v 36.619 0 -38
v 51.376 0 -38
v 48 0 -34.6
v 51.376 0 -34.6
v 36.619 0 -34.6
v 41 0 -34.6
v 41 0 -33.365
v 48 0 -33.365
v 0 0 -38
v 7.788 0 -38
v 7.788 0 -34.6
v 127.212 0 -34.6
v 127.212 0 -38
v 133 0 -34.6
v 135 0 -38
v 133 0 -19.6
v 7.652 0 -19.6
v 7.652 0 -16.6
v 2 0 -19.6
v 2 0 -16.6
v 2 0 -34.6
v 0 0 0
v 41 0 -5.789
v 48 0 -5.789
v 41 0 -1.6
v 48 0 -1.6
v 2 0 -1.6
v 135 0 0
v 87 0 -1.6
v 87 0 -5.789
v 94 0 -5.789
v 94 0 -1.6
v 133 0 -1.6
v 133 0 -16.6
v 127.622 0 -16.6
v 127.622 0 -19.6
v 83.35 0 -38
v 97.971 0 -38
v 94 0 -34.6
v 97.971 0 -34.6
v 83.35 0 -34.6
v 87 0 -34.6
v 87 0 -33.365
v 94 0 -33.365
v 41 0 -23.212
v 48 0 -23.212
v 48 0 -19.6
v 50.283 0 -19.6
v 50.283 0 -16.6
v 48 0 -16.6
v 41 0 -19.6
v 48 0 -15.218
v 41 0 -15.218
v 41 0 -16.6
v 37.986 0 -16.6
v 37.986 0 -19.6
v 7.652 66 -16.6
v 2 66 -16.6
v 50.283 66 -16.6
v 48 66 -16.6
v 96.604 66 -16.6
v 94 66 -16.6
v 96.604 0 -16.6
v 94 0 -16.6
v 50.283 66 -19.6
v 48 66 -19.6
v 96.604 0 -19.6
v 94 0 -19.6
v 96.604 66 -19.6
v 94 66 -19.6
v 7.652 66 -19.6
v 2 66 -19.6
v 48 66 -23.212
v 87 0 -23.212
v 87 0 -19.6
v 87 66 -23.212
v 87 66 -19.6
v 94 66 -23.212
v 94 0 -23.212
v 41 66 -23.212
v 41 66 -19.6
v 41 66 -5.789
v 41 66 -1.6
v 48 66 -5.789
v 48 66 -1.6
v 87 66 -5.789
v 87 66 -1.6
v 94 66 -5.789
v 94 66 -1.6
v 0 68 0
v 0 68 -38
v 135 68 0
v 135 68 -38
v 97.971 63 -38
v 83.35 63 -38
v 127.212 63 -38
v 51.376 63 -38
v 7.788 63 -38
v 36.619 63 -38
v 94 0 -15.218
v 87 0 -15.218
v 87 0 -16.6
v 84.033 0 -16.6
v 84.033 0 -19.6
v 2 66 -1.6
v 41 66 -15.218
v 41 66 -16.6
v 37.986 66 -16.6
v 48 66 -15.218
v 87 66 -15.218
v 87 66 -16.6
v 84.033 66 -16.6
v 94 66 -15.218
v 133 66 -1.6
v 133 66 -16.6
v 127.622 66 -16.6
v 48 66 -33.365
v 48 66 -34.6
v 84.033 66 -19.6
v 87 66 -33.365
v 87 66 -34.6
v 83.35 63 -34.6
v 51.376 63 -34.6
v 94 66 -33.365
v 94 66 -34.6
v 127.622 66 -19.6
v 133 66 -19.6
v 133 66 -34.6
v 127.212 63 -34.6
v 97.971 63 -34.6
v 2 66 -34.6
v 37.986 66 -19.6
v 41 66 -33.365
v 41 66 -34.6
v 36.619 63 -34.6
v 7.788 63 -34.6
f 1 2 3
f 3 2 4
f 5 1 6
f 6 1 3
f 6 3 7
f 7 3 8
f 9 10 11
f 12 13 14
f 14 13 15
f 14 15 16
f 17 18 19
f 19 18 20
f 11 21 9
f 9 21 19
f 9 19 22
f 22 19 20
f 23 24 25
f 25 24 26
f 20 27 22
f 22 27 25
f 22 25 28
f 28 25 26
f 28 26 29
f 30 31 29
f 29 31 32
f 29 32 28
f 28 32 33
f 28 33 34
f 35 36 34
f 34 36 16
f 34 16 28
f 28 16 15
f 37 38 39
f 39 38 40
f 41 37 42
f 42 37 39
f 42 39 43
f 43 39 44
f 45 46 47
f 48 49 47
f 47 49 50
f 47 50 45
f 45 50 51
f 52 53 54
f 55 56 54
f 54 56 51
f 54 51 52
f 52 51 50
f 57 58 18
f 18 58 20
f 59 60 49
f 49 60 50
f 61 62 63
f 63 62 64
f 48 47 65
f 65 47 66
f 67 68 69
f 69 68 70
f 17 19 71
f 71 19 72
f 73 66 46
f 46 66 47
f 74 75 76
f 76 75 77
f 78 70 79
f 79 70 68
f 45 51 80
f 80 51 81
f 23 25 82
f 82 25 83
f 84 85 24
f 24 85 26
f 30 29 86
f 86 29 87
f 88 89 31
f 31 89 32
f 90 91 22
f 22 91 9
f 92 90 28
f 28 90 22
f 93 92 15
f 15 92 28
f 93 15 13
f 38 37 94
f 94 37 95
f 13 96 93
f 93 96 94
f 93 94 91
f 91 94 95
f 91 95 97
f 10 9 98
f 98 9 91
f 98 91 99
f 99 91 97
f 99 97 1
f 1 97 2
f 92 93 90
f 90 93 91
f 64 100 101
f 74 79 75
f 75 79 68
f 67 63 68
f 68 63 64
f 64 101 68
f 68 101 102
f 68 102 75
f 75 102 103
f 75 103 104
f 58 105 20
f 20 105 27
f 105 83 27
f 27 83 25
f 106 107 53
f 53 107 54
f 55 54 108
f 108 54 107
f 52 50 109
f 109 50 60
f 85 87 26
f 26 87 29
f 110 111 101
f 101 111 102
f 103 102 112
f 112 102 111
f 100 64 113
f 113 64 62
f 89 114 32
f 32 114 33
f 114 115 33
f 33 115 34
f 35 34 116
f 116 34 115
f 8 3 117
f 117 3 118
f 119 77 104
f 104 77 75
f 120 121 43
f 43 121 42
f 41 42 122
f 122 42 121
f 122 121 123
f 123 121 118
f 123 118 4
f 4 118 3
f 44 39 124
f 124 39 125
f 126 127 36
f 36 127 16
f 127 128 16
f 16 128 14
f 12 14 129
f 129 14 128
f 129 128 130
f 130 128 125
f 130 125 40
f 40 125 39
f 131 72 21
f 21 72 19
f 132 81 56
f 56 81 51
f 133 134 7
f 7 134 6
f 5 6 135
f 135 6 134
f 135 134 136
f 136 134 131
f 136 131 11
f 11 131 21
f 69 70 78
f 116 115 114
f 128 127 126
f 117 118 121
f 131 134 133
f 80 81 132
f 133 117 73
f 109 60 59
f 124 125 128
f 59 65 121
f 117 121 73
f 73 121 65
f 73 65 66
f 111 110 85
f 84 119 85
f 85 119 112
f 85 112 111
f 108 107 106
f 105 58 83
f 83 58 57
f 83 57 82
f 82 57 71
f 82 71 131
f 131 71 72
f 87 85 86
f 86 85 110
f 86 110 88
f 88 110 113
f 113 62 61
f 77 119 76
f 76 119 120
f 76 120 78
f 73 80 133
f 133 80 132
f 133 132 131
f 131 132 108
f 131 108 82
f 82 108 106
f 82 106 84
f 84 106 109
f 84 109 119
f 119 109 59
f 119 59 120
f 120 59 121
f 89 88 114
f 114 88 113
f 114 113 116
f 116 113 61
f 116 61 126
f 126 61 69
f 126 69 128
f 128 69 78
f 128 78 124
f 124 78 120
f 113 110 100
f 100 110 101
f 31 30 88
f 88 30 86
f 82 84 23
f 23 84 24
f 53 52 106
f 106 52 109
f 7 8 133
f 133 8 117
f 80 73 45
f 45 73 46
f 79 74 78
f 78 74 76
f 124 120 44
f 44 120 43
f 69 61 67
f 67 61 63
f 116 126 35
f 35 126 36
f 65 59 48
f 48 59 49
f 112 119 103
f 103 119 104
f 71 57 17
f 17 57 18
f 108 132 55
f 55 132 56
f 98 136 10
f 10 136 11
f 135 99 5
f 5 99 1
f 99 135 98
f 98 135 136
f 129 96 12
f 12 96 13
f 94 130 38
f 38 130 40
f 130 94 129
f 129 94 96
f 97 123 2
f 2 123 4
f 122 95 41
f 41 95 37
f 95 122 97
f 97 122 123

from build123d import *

# Parameters (mm, degrees)
SKETCH_1_W          = 135
SKETCH_1_H          = 38
EXTRUDE_312_DEPTH   = 68
SKETCH_2_W          = 39
SKETCH_2_H          = 15
CUT_EXTRUDE_1_DEPTH = 66
SKETCH_4_W          = 53
SKETCH_4_H          = 9.428155193
CUT_EXTRUDE_2_DEPTH = 66
SKETCH_6_W          = 53
SKETCH_6_H          = 10.153175229
CUT_EXTRUDE_3_DEPTH = 66
SKETCH_7_W          = 30.334064535
SKETCH_7_H          = 3
SKETCH_7_W_2        = 33.750062794
SKETCH_7_W_3        = 31.017264187
CUT_EXTRUDE_4_DEPTH = 66
SKETCH_11_W         = 28.831025302
SKETCH_11_H         = 3.4
SKETCH_11_W_2       = 31.973743699
SKETCH_11_H_2       = 1.4
SKETCH_11_W_3       = 29.240945093
CUT_EXTRUDE_6_DEPTH = 63
SKETCH_12_W         = 31.973743699
SKETCH_12_H         = 2
CUT_EXTRUDE_7_DEPTH = 63


with BuildPart() as part:
    # Эскиз1 → Extrude 312 (new body)
    with BuildSketch(Plane(origin=(0, 0, 0), x_dir=(1, 0, 0), z_dir=(0, 1, 0))):
        with Locations((67.5, 19)):
            Rectangle(SKETCH_1_W, SKETCH_1_H)
    extrude(amount=EXTRUDE_312_DEPTH)

    # Эскиз2 → Вырез-Вытянуть1 (cut)
    with BuildSketch(Plane.XZ):
        with Locations((21.5, -9.1)):
            Rectangle(SKETCH_2_W, SKETCH_2_H)
        with Locations((67.5, -9.1)):
            Rectangle(SKETCH_2_W, SKETCH_2_H)
        with Locations((113.5, -9.1)):
            Rectangle(SKETCH_2_W, SKETCH_2_H)
        with Locations((67.5, -27.1)):
            Rectangle(SKETCH_2_W, SKETCH_2_H)
        with Locations((113.5, -27.1)):
            Rectangle(SKETCH_2_W, SKETCH_2_H)
        with Locations((21.5, -27.1)):
            Rectangle(SKETCH_2_W, SKETCH_2_H)
    extrude(amount=-CUT_EXTRUDE_1_DEPTH, mode=Mode.SUBTRACT)

    # Эскиз4 → Вырез-Вытянуть2 (cut)
    with BuildSketch(Plane.XZ):
        with Locations((67.5, -10.503524842)):
            Rectangle(SKETCH_4_W, SKETCH_4_H)
    extrude(amount=-CUT_EXTRUDE_2_DEPTH, mode=Mode.SUBTRACT)

    # Эскиз6 → Вырез-Вытянуть3 (cut)
    with BuildSketch(Plane.XZ):
        with Locations((67.5, -28.288326327)):
            Rectangle(SKETCH_6_W, SKETCH_6_H)
    extrude(amount=-CUT_EXTRUDE_3_DEPTH, mode=Mode.SUBTRACT)

    # Эскиз7 → Вырез-Вытянуть4 (cut)
    with BuildSketch(Plane.XZ):
        with Locations((22.818742778, -18.1)):
            Rectangle(SKETCH_7_W, SKETCH_7_H)
        with Locations((67.158400174, -18.1)):
            Rectangle(SKETCH_7_W_2, SKETCH_7_H)
        with Locations((112.112937257, -18.1)):
            Rectangle(SKETCH_7_W_3, SKETCH_7_H)
    extrude(amount=-CUT_EXTRUDE_4_DEPTH, mode=Mode.SUBTRACT)

    # Эскиз11 → Вырез-Вытянуть6 (cut)
    with BuildSketch(Plane.XZ):
        with Locations((22.203863092, -36.3)):
            Rectangle(SKETCH_11_W, SKETCH_11_H)
        with Locations((67.36336007, -37.3)):
            Rectangle(SKETCH_11_W_2, SKETCH_11_H_2)
        with Locations((112.591177012, -36.3)):
            Rectangle(SKETCH_11_W_3, SKETCH_11_H)
    extrude(amount=-CUT_EXTRUDE_6_DEPTH, mode=Mode.SUBTRACT)

    # Эскиз12 → Вырез-Вытянуть7 (cut)
    with BuildSketch(Plane.XZ):
        with Locations((67.36336007, -35.6)):
            Rectangle(SKETCH_12_W, SKETCH_12_H)
    extrude(amount=-CUT_EXTRUDE_7_DEPTH, mode=Mode.SUBTRACT)


solid = part.part
